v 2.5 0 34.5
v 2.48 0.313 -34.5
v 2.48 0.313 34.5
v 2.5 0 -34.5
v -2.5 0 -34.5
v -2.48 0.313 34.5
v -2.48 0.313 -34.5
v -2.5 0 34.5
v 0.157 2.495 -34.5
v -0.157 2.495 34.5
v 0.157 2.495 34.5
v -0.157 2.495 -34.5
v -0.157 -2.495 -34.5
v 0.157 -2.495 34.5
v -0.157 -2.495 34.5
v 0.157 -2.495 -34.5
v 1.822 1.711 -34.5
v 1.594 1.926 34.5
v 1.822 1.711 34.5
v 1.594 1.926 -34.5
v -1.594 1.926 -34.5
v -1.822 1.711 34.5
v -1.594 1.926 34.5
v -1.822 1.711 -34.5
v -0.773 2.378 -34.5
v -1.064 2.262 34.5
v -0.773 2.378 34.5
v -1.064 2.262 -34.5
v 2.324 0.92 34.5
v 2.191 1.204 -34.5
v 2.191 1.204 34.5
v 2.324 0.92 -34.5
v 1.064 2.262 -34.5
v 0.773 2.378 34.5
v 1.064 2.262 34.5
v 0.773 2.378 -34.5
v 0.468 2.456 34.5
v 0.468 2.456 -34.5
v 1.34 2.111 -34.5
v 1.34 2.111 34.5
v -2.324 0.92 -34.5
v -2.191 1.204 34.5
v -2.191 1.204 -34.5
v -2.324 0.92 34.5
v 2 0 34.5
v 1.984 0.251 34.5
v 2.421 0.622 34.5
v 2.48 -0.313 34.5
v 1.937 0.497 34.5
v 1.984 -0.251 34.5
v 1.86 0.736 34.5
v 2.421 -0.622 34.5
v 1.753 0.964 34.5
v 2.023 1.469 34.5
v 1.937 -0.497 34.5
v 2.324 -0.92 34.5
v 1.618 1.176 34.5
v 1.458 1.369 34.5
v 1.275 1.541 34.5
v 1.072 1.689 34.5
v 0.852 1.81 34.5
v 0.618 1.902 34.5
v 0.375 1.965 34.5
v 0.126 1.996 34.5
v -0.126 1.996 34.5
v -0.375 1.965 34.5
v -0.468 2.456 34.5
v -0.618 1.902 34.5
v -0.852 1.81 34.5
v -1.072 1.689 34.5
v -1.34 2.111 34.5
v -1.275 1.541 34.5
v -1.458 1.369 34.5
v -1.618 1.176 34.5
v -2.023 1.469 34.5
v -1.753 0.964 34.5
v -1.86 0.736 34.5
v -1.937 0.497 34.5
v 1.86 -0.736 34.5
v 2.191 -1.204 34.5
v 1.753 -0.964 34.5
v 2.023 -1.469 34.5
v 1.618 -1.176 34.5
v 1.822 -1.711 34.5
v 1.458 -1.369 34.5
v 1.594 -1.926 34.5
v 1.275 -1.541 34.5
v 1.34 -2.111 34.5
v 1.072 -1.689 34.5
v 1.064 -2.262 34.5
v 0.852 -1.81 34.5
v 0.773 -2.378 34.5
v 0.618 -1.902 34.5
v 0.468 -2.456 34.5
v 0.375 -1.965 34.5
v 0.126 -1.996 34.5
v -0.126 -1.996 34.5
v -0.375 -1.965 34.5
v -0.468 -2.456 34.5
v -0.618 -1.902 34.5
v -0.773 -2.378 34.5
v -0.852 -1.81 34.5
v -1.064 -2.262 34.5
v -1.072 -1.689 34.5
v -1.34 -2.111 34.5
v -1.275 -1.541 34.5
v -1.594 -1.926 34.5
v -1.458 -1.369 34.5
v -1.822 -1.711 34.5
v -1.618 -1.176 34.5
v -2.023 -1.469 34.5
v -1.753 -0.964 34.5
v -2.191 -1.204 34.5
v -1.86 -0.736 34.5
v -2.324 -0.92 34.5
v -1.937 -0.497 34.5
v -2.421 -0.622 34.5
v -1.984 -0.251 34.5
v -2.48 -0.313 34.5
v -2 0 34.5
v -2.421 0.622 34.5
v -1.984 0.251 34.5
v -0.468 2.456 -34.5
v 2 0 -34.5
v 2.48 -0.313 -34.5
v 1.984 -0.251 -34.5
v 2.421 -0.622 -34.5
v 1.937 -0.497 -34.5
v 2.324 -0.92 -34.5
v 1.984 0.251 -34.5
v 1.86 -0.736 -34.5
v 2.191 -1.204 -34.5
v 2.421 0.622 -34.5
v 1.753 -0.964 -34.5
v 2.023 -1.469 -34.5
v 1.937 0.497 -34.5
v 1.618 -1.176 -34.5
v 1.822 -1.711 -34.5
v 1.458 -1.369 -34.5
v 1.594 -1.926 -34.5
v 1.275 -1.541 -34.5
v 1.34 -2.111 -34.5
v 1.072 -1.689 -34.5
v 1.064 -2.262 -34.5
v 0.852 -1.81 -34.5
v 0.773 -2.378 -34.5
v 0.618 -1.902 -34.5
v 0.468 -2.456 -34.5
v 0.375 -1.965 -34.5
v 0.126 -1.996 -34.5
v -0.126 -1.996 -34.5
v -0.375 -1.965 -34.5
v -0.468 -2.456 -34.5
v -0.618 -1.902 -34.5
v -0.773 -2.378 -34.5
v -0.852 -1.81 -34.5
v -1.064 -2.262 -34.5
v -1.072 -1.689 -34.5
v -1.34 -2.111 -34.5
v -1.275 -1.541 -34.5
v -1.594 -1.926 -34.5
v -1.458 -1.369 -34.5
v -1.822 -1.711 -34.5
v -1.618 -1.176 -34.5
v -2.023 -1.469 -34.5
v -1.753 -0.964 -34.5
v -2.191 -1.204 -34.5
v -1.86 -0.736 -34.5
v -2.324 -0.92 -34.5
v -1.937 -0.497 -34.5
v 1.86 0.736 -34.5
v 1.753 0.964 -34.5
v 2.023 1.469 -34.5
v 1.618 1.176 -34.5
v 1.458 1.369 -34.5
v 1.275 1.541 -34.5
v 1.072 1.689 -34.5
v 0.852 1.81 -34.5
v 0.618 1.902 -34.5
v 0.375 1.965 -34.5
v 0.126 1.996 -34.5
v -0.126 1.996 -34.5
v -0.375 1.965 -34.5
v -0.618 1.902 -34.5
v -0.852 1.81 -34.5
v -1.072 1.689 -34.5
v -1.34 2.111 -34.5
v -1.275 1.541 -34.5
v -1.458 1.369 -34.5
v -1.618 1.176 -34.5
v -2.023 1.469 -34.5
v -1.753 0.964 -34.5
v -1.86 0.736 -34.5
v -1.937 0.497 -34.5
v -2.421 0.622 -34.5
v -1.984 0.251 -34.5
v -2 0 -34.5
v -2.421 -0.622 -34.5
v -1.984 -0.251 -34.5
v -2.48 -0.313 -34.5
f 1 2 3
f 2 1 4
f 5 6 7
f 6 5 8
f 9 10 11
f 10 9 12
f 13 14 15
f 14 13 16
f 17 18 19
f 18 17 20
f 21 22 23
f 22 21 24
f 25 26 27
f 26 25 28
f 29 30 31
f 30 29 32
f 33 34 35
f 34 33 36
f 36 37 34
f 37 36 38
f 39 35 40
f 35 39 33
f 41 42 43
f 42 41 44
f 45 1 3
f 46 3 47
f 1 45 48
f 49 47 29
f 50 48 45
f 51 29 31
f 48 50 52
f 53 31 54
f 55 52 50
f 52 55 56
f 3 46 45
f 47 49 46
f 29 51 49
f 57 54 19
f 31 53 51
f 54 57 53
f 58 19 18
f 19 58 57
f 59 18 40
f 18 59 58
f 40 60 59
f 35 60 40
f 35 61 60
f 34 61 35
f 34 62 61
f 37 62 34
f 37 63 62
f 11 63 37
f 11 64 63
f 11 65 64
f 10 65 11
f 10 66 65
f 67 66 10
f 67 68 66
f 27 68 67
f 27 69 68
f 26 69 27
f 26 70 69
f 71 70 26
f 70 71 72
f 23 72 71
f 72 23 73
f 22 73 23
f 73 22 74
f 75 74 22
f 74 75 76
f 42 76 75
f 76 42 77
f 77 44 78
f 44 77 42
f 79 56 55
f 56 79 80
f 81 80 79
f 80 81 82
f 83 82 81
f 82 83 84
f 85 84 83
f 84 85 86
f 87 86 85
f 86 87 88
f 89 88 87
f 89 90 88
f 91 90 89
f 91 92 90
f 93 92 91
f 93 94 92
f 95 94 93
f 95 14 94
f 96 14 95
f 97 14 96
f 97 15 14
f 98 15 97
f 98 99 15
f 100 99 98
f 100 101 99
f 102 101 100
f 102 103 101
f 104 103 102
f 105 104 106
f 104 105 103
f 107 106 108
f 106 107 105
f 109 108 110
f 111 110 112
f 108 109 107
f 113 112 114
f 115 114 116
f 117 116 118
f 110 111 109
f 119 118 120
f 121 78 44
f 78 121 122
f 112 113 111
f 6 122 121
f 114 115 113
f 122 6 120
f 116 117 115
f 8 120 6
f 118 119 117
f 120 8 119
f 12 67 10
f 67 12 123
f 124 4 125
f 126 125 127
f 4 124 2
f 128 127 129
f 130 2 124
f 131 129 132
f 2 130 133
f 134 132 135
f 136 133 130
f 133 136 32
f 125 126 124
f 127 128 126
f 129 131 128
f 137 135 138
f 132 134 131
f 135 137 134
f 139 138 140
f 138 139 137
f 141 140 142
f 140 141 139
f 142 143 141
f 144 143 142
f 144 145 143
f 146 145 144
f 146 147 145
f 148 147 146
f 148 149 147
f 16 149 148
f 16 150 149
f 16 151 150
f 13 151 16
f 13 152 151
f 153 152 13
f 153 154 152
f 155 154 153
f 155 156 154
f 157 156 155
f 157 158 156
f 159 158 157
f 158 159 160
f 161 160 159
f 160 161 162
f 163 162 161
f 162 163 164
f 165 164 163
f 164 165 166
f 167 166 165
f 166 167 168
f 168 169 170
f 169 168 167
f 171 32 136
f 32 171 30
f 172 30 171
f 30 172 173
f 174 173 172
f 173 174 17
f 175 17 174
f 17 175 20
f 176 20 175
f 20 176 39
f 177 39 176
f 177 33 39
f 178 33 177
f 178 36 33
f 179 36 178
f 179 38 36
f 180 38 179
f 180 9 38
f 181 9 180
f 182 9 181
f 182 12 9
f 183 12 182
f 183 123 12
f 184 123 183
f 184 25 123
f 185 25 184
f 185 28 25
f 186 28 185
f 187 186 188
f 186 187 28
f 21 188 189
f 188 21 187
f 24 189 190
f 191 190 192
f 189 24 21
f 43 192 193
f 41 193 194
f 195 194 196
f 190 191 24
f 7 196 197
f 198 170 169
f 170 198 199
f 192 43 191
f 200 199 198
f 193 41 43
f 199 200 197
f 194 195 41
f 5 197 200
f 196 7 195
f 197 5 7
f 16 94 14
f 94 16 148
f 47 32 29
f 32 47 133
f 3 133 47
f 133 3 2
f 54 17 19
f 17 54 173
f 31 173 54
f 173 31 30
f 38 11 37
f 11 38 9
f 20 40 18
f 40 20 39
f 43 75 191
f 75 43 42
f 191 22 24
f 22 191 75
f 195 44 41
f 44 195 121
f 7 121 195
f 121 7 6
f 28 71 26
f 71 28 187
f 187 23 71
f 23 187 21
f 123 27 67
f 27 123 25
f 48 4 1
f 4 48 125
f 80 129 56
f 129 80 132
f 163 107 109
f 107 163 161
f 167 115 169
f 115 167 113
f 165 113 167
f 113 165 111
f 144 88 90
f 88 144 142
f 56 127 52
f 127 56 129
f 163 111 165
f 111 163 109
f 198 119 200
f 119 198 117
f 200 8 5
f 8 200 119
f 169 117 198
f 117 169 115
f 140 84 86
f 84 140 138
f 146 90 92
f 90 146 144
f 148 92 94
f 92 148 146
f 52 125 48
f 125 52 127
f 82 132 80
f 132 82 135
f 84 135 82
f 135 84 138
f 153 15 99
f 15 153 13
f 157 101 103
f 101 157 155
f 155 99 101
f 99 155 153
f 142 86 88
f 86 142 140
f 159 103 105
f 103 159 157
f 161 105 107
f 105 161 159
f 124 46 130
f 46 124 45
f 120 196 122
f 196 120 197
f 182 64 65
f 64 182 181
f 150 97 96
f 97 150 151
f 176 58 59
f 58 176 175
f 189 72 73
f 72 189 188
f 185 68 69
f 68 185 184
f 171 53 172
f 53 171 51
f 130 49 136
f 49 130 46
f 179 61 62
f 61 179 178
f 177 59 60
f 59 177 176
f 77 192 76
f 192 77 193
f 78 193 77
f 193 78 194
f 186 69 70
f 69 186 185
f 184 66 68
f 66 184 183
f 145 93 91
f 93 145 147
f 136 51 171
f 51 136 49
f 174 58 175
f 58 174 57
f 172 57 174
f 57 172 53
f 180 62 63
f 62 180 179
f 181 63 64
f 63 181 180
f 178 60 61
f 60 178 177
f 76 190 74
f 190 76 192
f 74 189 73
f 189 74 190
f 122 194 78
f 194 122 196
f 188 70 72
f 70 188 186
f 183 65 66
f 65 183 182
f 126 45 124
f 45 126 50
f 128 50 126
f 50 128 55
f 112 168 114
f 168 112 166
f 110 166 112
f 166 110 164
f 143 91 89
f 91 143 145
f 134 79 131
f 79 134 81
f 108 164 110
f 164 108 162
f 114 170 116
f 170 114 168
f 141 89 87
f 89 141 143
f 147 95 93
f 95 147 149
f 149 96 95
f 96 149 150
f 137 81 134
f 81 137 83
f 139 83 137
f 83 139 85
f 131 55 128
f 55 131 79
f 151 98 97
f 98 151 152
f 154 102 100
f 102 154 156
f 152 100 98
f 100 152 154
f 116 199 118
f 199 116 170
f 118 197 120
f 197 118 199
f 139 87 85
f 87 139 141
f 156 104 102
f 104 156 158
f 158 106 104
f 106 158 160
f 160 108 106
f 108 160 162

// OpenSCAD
$fn = 50;


difference() {
	union() {
		translate(v = [0, 0, -34.5000000000]) {
			cylinder(h = 69, r = 2.5000000000);
		}
	}
	union() {
		translate(v = [0, 0, -100.0000000000]) {
			cylinder(h = 200, r = 2);
		}
	}
}
